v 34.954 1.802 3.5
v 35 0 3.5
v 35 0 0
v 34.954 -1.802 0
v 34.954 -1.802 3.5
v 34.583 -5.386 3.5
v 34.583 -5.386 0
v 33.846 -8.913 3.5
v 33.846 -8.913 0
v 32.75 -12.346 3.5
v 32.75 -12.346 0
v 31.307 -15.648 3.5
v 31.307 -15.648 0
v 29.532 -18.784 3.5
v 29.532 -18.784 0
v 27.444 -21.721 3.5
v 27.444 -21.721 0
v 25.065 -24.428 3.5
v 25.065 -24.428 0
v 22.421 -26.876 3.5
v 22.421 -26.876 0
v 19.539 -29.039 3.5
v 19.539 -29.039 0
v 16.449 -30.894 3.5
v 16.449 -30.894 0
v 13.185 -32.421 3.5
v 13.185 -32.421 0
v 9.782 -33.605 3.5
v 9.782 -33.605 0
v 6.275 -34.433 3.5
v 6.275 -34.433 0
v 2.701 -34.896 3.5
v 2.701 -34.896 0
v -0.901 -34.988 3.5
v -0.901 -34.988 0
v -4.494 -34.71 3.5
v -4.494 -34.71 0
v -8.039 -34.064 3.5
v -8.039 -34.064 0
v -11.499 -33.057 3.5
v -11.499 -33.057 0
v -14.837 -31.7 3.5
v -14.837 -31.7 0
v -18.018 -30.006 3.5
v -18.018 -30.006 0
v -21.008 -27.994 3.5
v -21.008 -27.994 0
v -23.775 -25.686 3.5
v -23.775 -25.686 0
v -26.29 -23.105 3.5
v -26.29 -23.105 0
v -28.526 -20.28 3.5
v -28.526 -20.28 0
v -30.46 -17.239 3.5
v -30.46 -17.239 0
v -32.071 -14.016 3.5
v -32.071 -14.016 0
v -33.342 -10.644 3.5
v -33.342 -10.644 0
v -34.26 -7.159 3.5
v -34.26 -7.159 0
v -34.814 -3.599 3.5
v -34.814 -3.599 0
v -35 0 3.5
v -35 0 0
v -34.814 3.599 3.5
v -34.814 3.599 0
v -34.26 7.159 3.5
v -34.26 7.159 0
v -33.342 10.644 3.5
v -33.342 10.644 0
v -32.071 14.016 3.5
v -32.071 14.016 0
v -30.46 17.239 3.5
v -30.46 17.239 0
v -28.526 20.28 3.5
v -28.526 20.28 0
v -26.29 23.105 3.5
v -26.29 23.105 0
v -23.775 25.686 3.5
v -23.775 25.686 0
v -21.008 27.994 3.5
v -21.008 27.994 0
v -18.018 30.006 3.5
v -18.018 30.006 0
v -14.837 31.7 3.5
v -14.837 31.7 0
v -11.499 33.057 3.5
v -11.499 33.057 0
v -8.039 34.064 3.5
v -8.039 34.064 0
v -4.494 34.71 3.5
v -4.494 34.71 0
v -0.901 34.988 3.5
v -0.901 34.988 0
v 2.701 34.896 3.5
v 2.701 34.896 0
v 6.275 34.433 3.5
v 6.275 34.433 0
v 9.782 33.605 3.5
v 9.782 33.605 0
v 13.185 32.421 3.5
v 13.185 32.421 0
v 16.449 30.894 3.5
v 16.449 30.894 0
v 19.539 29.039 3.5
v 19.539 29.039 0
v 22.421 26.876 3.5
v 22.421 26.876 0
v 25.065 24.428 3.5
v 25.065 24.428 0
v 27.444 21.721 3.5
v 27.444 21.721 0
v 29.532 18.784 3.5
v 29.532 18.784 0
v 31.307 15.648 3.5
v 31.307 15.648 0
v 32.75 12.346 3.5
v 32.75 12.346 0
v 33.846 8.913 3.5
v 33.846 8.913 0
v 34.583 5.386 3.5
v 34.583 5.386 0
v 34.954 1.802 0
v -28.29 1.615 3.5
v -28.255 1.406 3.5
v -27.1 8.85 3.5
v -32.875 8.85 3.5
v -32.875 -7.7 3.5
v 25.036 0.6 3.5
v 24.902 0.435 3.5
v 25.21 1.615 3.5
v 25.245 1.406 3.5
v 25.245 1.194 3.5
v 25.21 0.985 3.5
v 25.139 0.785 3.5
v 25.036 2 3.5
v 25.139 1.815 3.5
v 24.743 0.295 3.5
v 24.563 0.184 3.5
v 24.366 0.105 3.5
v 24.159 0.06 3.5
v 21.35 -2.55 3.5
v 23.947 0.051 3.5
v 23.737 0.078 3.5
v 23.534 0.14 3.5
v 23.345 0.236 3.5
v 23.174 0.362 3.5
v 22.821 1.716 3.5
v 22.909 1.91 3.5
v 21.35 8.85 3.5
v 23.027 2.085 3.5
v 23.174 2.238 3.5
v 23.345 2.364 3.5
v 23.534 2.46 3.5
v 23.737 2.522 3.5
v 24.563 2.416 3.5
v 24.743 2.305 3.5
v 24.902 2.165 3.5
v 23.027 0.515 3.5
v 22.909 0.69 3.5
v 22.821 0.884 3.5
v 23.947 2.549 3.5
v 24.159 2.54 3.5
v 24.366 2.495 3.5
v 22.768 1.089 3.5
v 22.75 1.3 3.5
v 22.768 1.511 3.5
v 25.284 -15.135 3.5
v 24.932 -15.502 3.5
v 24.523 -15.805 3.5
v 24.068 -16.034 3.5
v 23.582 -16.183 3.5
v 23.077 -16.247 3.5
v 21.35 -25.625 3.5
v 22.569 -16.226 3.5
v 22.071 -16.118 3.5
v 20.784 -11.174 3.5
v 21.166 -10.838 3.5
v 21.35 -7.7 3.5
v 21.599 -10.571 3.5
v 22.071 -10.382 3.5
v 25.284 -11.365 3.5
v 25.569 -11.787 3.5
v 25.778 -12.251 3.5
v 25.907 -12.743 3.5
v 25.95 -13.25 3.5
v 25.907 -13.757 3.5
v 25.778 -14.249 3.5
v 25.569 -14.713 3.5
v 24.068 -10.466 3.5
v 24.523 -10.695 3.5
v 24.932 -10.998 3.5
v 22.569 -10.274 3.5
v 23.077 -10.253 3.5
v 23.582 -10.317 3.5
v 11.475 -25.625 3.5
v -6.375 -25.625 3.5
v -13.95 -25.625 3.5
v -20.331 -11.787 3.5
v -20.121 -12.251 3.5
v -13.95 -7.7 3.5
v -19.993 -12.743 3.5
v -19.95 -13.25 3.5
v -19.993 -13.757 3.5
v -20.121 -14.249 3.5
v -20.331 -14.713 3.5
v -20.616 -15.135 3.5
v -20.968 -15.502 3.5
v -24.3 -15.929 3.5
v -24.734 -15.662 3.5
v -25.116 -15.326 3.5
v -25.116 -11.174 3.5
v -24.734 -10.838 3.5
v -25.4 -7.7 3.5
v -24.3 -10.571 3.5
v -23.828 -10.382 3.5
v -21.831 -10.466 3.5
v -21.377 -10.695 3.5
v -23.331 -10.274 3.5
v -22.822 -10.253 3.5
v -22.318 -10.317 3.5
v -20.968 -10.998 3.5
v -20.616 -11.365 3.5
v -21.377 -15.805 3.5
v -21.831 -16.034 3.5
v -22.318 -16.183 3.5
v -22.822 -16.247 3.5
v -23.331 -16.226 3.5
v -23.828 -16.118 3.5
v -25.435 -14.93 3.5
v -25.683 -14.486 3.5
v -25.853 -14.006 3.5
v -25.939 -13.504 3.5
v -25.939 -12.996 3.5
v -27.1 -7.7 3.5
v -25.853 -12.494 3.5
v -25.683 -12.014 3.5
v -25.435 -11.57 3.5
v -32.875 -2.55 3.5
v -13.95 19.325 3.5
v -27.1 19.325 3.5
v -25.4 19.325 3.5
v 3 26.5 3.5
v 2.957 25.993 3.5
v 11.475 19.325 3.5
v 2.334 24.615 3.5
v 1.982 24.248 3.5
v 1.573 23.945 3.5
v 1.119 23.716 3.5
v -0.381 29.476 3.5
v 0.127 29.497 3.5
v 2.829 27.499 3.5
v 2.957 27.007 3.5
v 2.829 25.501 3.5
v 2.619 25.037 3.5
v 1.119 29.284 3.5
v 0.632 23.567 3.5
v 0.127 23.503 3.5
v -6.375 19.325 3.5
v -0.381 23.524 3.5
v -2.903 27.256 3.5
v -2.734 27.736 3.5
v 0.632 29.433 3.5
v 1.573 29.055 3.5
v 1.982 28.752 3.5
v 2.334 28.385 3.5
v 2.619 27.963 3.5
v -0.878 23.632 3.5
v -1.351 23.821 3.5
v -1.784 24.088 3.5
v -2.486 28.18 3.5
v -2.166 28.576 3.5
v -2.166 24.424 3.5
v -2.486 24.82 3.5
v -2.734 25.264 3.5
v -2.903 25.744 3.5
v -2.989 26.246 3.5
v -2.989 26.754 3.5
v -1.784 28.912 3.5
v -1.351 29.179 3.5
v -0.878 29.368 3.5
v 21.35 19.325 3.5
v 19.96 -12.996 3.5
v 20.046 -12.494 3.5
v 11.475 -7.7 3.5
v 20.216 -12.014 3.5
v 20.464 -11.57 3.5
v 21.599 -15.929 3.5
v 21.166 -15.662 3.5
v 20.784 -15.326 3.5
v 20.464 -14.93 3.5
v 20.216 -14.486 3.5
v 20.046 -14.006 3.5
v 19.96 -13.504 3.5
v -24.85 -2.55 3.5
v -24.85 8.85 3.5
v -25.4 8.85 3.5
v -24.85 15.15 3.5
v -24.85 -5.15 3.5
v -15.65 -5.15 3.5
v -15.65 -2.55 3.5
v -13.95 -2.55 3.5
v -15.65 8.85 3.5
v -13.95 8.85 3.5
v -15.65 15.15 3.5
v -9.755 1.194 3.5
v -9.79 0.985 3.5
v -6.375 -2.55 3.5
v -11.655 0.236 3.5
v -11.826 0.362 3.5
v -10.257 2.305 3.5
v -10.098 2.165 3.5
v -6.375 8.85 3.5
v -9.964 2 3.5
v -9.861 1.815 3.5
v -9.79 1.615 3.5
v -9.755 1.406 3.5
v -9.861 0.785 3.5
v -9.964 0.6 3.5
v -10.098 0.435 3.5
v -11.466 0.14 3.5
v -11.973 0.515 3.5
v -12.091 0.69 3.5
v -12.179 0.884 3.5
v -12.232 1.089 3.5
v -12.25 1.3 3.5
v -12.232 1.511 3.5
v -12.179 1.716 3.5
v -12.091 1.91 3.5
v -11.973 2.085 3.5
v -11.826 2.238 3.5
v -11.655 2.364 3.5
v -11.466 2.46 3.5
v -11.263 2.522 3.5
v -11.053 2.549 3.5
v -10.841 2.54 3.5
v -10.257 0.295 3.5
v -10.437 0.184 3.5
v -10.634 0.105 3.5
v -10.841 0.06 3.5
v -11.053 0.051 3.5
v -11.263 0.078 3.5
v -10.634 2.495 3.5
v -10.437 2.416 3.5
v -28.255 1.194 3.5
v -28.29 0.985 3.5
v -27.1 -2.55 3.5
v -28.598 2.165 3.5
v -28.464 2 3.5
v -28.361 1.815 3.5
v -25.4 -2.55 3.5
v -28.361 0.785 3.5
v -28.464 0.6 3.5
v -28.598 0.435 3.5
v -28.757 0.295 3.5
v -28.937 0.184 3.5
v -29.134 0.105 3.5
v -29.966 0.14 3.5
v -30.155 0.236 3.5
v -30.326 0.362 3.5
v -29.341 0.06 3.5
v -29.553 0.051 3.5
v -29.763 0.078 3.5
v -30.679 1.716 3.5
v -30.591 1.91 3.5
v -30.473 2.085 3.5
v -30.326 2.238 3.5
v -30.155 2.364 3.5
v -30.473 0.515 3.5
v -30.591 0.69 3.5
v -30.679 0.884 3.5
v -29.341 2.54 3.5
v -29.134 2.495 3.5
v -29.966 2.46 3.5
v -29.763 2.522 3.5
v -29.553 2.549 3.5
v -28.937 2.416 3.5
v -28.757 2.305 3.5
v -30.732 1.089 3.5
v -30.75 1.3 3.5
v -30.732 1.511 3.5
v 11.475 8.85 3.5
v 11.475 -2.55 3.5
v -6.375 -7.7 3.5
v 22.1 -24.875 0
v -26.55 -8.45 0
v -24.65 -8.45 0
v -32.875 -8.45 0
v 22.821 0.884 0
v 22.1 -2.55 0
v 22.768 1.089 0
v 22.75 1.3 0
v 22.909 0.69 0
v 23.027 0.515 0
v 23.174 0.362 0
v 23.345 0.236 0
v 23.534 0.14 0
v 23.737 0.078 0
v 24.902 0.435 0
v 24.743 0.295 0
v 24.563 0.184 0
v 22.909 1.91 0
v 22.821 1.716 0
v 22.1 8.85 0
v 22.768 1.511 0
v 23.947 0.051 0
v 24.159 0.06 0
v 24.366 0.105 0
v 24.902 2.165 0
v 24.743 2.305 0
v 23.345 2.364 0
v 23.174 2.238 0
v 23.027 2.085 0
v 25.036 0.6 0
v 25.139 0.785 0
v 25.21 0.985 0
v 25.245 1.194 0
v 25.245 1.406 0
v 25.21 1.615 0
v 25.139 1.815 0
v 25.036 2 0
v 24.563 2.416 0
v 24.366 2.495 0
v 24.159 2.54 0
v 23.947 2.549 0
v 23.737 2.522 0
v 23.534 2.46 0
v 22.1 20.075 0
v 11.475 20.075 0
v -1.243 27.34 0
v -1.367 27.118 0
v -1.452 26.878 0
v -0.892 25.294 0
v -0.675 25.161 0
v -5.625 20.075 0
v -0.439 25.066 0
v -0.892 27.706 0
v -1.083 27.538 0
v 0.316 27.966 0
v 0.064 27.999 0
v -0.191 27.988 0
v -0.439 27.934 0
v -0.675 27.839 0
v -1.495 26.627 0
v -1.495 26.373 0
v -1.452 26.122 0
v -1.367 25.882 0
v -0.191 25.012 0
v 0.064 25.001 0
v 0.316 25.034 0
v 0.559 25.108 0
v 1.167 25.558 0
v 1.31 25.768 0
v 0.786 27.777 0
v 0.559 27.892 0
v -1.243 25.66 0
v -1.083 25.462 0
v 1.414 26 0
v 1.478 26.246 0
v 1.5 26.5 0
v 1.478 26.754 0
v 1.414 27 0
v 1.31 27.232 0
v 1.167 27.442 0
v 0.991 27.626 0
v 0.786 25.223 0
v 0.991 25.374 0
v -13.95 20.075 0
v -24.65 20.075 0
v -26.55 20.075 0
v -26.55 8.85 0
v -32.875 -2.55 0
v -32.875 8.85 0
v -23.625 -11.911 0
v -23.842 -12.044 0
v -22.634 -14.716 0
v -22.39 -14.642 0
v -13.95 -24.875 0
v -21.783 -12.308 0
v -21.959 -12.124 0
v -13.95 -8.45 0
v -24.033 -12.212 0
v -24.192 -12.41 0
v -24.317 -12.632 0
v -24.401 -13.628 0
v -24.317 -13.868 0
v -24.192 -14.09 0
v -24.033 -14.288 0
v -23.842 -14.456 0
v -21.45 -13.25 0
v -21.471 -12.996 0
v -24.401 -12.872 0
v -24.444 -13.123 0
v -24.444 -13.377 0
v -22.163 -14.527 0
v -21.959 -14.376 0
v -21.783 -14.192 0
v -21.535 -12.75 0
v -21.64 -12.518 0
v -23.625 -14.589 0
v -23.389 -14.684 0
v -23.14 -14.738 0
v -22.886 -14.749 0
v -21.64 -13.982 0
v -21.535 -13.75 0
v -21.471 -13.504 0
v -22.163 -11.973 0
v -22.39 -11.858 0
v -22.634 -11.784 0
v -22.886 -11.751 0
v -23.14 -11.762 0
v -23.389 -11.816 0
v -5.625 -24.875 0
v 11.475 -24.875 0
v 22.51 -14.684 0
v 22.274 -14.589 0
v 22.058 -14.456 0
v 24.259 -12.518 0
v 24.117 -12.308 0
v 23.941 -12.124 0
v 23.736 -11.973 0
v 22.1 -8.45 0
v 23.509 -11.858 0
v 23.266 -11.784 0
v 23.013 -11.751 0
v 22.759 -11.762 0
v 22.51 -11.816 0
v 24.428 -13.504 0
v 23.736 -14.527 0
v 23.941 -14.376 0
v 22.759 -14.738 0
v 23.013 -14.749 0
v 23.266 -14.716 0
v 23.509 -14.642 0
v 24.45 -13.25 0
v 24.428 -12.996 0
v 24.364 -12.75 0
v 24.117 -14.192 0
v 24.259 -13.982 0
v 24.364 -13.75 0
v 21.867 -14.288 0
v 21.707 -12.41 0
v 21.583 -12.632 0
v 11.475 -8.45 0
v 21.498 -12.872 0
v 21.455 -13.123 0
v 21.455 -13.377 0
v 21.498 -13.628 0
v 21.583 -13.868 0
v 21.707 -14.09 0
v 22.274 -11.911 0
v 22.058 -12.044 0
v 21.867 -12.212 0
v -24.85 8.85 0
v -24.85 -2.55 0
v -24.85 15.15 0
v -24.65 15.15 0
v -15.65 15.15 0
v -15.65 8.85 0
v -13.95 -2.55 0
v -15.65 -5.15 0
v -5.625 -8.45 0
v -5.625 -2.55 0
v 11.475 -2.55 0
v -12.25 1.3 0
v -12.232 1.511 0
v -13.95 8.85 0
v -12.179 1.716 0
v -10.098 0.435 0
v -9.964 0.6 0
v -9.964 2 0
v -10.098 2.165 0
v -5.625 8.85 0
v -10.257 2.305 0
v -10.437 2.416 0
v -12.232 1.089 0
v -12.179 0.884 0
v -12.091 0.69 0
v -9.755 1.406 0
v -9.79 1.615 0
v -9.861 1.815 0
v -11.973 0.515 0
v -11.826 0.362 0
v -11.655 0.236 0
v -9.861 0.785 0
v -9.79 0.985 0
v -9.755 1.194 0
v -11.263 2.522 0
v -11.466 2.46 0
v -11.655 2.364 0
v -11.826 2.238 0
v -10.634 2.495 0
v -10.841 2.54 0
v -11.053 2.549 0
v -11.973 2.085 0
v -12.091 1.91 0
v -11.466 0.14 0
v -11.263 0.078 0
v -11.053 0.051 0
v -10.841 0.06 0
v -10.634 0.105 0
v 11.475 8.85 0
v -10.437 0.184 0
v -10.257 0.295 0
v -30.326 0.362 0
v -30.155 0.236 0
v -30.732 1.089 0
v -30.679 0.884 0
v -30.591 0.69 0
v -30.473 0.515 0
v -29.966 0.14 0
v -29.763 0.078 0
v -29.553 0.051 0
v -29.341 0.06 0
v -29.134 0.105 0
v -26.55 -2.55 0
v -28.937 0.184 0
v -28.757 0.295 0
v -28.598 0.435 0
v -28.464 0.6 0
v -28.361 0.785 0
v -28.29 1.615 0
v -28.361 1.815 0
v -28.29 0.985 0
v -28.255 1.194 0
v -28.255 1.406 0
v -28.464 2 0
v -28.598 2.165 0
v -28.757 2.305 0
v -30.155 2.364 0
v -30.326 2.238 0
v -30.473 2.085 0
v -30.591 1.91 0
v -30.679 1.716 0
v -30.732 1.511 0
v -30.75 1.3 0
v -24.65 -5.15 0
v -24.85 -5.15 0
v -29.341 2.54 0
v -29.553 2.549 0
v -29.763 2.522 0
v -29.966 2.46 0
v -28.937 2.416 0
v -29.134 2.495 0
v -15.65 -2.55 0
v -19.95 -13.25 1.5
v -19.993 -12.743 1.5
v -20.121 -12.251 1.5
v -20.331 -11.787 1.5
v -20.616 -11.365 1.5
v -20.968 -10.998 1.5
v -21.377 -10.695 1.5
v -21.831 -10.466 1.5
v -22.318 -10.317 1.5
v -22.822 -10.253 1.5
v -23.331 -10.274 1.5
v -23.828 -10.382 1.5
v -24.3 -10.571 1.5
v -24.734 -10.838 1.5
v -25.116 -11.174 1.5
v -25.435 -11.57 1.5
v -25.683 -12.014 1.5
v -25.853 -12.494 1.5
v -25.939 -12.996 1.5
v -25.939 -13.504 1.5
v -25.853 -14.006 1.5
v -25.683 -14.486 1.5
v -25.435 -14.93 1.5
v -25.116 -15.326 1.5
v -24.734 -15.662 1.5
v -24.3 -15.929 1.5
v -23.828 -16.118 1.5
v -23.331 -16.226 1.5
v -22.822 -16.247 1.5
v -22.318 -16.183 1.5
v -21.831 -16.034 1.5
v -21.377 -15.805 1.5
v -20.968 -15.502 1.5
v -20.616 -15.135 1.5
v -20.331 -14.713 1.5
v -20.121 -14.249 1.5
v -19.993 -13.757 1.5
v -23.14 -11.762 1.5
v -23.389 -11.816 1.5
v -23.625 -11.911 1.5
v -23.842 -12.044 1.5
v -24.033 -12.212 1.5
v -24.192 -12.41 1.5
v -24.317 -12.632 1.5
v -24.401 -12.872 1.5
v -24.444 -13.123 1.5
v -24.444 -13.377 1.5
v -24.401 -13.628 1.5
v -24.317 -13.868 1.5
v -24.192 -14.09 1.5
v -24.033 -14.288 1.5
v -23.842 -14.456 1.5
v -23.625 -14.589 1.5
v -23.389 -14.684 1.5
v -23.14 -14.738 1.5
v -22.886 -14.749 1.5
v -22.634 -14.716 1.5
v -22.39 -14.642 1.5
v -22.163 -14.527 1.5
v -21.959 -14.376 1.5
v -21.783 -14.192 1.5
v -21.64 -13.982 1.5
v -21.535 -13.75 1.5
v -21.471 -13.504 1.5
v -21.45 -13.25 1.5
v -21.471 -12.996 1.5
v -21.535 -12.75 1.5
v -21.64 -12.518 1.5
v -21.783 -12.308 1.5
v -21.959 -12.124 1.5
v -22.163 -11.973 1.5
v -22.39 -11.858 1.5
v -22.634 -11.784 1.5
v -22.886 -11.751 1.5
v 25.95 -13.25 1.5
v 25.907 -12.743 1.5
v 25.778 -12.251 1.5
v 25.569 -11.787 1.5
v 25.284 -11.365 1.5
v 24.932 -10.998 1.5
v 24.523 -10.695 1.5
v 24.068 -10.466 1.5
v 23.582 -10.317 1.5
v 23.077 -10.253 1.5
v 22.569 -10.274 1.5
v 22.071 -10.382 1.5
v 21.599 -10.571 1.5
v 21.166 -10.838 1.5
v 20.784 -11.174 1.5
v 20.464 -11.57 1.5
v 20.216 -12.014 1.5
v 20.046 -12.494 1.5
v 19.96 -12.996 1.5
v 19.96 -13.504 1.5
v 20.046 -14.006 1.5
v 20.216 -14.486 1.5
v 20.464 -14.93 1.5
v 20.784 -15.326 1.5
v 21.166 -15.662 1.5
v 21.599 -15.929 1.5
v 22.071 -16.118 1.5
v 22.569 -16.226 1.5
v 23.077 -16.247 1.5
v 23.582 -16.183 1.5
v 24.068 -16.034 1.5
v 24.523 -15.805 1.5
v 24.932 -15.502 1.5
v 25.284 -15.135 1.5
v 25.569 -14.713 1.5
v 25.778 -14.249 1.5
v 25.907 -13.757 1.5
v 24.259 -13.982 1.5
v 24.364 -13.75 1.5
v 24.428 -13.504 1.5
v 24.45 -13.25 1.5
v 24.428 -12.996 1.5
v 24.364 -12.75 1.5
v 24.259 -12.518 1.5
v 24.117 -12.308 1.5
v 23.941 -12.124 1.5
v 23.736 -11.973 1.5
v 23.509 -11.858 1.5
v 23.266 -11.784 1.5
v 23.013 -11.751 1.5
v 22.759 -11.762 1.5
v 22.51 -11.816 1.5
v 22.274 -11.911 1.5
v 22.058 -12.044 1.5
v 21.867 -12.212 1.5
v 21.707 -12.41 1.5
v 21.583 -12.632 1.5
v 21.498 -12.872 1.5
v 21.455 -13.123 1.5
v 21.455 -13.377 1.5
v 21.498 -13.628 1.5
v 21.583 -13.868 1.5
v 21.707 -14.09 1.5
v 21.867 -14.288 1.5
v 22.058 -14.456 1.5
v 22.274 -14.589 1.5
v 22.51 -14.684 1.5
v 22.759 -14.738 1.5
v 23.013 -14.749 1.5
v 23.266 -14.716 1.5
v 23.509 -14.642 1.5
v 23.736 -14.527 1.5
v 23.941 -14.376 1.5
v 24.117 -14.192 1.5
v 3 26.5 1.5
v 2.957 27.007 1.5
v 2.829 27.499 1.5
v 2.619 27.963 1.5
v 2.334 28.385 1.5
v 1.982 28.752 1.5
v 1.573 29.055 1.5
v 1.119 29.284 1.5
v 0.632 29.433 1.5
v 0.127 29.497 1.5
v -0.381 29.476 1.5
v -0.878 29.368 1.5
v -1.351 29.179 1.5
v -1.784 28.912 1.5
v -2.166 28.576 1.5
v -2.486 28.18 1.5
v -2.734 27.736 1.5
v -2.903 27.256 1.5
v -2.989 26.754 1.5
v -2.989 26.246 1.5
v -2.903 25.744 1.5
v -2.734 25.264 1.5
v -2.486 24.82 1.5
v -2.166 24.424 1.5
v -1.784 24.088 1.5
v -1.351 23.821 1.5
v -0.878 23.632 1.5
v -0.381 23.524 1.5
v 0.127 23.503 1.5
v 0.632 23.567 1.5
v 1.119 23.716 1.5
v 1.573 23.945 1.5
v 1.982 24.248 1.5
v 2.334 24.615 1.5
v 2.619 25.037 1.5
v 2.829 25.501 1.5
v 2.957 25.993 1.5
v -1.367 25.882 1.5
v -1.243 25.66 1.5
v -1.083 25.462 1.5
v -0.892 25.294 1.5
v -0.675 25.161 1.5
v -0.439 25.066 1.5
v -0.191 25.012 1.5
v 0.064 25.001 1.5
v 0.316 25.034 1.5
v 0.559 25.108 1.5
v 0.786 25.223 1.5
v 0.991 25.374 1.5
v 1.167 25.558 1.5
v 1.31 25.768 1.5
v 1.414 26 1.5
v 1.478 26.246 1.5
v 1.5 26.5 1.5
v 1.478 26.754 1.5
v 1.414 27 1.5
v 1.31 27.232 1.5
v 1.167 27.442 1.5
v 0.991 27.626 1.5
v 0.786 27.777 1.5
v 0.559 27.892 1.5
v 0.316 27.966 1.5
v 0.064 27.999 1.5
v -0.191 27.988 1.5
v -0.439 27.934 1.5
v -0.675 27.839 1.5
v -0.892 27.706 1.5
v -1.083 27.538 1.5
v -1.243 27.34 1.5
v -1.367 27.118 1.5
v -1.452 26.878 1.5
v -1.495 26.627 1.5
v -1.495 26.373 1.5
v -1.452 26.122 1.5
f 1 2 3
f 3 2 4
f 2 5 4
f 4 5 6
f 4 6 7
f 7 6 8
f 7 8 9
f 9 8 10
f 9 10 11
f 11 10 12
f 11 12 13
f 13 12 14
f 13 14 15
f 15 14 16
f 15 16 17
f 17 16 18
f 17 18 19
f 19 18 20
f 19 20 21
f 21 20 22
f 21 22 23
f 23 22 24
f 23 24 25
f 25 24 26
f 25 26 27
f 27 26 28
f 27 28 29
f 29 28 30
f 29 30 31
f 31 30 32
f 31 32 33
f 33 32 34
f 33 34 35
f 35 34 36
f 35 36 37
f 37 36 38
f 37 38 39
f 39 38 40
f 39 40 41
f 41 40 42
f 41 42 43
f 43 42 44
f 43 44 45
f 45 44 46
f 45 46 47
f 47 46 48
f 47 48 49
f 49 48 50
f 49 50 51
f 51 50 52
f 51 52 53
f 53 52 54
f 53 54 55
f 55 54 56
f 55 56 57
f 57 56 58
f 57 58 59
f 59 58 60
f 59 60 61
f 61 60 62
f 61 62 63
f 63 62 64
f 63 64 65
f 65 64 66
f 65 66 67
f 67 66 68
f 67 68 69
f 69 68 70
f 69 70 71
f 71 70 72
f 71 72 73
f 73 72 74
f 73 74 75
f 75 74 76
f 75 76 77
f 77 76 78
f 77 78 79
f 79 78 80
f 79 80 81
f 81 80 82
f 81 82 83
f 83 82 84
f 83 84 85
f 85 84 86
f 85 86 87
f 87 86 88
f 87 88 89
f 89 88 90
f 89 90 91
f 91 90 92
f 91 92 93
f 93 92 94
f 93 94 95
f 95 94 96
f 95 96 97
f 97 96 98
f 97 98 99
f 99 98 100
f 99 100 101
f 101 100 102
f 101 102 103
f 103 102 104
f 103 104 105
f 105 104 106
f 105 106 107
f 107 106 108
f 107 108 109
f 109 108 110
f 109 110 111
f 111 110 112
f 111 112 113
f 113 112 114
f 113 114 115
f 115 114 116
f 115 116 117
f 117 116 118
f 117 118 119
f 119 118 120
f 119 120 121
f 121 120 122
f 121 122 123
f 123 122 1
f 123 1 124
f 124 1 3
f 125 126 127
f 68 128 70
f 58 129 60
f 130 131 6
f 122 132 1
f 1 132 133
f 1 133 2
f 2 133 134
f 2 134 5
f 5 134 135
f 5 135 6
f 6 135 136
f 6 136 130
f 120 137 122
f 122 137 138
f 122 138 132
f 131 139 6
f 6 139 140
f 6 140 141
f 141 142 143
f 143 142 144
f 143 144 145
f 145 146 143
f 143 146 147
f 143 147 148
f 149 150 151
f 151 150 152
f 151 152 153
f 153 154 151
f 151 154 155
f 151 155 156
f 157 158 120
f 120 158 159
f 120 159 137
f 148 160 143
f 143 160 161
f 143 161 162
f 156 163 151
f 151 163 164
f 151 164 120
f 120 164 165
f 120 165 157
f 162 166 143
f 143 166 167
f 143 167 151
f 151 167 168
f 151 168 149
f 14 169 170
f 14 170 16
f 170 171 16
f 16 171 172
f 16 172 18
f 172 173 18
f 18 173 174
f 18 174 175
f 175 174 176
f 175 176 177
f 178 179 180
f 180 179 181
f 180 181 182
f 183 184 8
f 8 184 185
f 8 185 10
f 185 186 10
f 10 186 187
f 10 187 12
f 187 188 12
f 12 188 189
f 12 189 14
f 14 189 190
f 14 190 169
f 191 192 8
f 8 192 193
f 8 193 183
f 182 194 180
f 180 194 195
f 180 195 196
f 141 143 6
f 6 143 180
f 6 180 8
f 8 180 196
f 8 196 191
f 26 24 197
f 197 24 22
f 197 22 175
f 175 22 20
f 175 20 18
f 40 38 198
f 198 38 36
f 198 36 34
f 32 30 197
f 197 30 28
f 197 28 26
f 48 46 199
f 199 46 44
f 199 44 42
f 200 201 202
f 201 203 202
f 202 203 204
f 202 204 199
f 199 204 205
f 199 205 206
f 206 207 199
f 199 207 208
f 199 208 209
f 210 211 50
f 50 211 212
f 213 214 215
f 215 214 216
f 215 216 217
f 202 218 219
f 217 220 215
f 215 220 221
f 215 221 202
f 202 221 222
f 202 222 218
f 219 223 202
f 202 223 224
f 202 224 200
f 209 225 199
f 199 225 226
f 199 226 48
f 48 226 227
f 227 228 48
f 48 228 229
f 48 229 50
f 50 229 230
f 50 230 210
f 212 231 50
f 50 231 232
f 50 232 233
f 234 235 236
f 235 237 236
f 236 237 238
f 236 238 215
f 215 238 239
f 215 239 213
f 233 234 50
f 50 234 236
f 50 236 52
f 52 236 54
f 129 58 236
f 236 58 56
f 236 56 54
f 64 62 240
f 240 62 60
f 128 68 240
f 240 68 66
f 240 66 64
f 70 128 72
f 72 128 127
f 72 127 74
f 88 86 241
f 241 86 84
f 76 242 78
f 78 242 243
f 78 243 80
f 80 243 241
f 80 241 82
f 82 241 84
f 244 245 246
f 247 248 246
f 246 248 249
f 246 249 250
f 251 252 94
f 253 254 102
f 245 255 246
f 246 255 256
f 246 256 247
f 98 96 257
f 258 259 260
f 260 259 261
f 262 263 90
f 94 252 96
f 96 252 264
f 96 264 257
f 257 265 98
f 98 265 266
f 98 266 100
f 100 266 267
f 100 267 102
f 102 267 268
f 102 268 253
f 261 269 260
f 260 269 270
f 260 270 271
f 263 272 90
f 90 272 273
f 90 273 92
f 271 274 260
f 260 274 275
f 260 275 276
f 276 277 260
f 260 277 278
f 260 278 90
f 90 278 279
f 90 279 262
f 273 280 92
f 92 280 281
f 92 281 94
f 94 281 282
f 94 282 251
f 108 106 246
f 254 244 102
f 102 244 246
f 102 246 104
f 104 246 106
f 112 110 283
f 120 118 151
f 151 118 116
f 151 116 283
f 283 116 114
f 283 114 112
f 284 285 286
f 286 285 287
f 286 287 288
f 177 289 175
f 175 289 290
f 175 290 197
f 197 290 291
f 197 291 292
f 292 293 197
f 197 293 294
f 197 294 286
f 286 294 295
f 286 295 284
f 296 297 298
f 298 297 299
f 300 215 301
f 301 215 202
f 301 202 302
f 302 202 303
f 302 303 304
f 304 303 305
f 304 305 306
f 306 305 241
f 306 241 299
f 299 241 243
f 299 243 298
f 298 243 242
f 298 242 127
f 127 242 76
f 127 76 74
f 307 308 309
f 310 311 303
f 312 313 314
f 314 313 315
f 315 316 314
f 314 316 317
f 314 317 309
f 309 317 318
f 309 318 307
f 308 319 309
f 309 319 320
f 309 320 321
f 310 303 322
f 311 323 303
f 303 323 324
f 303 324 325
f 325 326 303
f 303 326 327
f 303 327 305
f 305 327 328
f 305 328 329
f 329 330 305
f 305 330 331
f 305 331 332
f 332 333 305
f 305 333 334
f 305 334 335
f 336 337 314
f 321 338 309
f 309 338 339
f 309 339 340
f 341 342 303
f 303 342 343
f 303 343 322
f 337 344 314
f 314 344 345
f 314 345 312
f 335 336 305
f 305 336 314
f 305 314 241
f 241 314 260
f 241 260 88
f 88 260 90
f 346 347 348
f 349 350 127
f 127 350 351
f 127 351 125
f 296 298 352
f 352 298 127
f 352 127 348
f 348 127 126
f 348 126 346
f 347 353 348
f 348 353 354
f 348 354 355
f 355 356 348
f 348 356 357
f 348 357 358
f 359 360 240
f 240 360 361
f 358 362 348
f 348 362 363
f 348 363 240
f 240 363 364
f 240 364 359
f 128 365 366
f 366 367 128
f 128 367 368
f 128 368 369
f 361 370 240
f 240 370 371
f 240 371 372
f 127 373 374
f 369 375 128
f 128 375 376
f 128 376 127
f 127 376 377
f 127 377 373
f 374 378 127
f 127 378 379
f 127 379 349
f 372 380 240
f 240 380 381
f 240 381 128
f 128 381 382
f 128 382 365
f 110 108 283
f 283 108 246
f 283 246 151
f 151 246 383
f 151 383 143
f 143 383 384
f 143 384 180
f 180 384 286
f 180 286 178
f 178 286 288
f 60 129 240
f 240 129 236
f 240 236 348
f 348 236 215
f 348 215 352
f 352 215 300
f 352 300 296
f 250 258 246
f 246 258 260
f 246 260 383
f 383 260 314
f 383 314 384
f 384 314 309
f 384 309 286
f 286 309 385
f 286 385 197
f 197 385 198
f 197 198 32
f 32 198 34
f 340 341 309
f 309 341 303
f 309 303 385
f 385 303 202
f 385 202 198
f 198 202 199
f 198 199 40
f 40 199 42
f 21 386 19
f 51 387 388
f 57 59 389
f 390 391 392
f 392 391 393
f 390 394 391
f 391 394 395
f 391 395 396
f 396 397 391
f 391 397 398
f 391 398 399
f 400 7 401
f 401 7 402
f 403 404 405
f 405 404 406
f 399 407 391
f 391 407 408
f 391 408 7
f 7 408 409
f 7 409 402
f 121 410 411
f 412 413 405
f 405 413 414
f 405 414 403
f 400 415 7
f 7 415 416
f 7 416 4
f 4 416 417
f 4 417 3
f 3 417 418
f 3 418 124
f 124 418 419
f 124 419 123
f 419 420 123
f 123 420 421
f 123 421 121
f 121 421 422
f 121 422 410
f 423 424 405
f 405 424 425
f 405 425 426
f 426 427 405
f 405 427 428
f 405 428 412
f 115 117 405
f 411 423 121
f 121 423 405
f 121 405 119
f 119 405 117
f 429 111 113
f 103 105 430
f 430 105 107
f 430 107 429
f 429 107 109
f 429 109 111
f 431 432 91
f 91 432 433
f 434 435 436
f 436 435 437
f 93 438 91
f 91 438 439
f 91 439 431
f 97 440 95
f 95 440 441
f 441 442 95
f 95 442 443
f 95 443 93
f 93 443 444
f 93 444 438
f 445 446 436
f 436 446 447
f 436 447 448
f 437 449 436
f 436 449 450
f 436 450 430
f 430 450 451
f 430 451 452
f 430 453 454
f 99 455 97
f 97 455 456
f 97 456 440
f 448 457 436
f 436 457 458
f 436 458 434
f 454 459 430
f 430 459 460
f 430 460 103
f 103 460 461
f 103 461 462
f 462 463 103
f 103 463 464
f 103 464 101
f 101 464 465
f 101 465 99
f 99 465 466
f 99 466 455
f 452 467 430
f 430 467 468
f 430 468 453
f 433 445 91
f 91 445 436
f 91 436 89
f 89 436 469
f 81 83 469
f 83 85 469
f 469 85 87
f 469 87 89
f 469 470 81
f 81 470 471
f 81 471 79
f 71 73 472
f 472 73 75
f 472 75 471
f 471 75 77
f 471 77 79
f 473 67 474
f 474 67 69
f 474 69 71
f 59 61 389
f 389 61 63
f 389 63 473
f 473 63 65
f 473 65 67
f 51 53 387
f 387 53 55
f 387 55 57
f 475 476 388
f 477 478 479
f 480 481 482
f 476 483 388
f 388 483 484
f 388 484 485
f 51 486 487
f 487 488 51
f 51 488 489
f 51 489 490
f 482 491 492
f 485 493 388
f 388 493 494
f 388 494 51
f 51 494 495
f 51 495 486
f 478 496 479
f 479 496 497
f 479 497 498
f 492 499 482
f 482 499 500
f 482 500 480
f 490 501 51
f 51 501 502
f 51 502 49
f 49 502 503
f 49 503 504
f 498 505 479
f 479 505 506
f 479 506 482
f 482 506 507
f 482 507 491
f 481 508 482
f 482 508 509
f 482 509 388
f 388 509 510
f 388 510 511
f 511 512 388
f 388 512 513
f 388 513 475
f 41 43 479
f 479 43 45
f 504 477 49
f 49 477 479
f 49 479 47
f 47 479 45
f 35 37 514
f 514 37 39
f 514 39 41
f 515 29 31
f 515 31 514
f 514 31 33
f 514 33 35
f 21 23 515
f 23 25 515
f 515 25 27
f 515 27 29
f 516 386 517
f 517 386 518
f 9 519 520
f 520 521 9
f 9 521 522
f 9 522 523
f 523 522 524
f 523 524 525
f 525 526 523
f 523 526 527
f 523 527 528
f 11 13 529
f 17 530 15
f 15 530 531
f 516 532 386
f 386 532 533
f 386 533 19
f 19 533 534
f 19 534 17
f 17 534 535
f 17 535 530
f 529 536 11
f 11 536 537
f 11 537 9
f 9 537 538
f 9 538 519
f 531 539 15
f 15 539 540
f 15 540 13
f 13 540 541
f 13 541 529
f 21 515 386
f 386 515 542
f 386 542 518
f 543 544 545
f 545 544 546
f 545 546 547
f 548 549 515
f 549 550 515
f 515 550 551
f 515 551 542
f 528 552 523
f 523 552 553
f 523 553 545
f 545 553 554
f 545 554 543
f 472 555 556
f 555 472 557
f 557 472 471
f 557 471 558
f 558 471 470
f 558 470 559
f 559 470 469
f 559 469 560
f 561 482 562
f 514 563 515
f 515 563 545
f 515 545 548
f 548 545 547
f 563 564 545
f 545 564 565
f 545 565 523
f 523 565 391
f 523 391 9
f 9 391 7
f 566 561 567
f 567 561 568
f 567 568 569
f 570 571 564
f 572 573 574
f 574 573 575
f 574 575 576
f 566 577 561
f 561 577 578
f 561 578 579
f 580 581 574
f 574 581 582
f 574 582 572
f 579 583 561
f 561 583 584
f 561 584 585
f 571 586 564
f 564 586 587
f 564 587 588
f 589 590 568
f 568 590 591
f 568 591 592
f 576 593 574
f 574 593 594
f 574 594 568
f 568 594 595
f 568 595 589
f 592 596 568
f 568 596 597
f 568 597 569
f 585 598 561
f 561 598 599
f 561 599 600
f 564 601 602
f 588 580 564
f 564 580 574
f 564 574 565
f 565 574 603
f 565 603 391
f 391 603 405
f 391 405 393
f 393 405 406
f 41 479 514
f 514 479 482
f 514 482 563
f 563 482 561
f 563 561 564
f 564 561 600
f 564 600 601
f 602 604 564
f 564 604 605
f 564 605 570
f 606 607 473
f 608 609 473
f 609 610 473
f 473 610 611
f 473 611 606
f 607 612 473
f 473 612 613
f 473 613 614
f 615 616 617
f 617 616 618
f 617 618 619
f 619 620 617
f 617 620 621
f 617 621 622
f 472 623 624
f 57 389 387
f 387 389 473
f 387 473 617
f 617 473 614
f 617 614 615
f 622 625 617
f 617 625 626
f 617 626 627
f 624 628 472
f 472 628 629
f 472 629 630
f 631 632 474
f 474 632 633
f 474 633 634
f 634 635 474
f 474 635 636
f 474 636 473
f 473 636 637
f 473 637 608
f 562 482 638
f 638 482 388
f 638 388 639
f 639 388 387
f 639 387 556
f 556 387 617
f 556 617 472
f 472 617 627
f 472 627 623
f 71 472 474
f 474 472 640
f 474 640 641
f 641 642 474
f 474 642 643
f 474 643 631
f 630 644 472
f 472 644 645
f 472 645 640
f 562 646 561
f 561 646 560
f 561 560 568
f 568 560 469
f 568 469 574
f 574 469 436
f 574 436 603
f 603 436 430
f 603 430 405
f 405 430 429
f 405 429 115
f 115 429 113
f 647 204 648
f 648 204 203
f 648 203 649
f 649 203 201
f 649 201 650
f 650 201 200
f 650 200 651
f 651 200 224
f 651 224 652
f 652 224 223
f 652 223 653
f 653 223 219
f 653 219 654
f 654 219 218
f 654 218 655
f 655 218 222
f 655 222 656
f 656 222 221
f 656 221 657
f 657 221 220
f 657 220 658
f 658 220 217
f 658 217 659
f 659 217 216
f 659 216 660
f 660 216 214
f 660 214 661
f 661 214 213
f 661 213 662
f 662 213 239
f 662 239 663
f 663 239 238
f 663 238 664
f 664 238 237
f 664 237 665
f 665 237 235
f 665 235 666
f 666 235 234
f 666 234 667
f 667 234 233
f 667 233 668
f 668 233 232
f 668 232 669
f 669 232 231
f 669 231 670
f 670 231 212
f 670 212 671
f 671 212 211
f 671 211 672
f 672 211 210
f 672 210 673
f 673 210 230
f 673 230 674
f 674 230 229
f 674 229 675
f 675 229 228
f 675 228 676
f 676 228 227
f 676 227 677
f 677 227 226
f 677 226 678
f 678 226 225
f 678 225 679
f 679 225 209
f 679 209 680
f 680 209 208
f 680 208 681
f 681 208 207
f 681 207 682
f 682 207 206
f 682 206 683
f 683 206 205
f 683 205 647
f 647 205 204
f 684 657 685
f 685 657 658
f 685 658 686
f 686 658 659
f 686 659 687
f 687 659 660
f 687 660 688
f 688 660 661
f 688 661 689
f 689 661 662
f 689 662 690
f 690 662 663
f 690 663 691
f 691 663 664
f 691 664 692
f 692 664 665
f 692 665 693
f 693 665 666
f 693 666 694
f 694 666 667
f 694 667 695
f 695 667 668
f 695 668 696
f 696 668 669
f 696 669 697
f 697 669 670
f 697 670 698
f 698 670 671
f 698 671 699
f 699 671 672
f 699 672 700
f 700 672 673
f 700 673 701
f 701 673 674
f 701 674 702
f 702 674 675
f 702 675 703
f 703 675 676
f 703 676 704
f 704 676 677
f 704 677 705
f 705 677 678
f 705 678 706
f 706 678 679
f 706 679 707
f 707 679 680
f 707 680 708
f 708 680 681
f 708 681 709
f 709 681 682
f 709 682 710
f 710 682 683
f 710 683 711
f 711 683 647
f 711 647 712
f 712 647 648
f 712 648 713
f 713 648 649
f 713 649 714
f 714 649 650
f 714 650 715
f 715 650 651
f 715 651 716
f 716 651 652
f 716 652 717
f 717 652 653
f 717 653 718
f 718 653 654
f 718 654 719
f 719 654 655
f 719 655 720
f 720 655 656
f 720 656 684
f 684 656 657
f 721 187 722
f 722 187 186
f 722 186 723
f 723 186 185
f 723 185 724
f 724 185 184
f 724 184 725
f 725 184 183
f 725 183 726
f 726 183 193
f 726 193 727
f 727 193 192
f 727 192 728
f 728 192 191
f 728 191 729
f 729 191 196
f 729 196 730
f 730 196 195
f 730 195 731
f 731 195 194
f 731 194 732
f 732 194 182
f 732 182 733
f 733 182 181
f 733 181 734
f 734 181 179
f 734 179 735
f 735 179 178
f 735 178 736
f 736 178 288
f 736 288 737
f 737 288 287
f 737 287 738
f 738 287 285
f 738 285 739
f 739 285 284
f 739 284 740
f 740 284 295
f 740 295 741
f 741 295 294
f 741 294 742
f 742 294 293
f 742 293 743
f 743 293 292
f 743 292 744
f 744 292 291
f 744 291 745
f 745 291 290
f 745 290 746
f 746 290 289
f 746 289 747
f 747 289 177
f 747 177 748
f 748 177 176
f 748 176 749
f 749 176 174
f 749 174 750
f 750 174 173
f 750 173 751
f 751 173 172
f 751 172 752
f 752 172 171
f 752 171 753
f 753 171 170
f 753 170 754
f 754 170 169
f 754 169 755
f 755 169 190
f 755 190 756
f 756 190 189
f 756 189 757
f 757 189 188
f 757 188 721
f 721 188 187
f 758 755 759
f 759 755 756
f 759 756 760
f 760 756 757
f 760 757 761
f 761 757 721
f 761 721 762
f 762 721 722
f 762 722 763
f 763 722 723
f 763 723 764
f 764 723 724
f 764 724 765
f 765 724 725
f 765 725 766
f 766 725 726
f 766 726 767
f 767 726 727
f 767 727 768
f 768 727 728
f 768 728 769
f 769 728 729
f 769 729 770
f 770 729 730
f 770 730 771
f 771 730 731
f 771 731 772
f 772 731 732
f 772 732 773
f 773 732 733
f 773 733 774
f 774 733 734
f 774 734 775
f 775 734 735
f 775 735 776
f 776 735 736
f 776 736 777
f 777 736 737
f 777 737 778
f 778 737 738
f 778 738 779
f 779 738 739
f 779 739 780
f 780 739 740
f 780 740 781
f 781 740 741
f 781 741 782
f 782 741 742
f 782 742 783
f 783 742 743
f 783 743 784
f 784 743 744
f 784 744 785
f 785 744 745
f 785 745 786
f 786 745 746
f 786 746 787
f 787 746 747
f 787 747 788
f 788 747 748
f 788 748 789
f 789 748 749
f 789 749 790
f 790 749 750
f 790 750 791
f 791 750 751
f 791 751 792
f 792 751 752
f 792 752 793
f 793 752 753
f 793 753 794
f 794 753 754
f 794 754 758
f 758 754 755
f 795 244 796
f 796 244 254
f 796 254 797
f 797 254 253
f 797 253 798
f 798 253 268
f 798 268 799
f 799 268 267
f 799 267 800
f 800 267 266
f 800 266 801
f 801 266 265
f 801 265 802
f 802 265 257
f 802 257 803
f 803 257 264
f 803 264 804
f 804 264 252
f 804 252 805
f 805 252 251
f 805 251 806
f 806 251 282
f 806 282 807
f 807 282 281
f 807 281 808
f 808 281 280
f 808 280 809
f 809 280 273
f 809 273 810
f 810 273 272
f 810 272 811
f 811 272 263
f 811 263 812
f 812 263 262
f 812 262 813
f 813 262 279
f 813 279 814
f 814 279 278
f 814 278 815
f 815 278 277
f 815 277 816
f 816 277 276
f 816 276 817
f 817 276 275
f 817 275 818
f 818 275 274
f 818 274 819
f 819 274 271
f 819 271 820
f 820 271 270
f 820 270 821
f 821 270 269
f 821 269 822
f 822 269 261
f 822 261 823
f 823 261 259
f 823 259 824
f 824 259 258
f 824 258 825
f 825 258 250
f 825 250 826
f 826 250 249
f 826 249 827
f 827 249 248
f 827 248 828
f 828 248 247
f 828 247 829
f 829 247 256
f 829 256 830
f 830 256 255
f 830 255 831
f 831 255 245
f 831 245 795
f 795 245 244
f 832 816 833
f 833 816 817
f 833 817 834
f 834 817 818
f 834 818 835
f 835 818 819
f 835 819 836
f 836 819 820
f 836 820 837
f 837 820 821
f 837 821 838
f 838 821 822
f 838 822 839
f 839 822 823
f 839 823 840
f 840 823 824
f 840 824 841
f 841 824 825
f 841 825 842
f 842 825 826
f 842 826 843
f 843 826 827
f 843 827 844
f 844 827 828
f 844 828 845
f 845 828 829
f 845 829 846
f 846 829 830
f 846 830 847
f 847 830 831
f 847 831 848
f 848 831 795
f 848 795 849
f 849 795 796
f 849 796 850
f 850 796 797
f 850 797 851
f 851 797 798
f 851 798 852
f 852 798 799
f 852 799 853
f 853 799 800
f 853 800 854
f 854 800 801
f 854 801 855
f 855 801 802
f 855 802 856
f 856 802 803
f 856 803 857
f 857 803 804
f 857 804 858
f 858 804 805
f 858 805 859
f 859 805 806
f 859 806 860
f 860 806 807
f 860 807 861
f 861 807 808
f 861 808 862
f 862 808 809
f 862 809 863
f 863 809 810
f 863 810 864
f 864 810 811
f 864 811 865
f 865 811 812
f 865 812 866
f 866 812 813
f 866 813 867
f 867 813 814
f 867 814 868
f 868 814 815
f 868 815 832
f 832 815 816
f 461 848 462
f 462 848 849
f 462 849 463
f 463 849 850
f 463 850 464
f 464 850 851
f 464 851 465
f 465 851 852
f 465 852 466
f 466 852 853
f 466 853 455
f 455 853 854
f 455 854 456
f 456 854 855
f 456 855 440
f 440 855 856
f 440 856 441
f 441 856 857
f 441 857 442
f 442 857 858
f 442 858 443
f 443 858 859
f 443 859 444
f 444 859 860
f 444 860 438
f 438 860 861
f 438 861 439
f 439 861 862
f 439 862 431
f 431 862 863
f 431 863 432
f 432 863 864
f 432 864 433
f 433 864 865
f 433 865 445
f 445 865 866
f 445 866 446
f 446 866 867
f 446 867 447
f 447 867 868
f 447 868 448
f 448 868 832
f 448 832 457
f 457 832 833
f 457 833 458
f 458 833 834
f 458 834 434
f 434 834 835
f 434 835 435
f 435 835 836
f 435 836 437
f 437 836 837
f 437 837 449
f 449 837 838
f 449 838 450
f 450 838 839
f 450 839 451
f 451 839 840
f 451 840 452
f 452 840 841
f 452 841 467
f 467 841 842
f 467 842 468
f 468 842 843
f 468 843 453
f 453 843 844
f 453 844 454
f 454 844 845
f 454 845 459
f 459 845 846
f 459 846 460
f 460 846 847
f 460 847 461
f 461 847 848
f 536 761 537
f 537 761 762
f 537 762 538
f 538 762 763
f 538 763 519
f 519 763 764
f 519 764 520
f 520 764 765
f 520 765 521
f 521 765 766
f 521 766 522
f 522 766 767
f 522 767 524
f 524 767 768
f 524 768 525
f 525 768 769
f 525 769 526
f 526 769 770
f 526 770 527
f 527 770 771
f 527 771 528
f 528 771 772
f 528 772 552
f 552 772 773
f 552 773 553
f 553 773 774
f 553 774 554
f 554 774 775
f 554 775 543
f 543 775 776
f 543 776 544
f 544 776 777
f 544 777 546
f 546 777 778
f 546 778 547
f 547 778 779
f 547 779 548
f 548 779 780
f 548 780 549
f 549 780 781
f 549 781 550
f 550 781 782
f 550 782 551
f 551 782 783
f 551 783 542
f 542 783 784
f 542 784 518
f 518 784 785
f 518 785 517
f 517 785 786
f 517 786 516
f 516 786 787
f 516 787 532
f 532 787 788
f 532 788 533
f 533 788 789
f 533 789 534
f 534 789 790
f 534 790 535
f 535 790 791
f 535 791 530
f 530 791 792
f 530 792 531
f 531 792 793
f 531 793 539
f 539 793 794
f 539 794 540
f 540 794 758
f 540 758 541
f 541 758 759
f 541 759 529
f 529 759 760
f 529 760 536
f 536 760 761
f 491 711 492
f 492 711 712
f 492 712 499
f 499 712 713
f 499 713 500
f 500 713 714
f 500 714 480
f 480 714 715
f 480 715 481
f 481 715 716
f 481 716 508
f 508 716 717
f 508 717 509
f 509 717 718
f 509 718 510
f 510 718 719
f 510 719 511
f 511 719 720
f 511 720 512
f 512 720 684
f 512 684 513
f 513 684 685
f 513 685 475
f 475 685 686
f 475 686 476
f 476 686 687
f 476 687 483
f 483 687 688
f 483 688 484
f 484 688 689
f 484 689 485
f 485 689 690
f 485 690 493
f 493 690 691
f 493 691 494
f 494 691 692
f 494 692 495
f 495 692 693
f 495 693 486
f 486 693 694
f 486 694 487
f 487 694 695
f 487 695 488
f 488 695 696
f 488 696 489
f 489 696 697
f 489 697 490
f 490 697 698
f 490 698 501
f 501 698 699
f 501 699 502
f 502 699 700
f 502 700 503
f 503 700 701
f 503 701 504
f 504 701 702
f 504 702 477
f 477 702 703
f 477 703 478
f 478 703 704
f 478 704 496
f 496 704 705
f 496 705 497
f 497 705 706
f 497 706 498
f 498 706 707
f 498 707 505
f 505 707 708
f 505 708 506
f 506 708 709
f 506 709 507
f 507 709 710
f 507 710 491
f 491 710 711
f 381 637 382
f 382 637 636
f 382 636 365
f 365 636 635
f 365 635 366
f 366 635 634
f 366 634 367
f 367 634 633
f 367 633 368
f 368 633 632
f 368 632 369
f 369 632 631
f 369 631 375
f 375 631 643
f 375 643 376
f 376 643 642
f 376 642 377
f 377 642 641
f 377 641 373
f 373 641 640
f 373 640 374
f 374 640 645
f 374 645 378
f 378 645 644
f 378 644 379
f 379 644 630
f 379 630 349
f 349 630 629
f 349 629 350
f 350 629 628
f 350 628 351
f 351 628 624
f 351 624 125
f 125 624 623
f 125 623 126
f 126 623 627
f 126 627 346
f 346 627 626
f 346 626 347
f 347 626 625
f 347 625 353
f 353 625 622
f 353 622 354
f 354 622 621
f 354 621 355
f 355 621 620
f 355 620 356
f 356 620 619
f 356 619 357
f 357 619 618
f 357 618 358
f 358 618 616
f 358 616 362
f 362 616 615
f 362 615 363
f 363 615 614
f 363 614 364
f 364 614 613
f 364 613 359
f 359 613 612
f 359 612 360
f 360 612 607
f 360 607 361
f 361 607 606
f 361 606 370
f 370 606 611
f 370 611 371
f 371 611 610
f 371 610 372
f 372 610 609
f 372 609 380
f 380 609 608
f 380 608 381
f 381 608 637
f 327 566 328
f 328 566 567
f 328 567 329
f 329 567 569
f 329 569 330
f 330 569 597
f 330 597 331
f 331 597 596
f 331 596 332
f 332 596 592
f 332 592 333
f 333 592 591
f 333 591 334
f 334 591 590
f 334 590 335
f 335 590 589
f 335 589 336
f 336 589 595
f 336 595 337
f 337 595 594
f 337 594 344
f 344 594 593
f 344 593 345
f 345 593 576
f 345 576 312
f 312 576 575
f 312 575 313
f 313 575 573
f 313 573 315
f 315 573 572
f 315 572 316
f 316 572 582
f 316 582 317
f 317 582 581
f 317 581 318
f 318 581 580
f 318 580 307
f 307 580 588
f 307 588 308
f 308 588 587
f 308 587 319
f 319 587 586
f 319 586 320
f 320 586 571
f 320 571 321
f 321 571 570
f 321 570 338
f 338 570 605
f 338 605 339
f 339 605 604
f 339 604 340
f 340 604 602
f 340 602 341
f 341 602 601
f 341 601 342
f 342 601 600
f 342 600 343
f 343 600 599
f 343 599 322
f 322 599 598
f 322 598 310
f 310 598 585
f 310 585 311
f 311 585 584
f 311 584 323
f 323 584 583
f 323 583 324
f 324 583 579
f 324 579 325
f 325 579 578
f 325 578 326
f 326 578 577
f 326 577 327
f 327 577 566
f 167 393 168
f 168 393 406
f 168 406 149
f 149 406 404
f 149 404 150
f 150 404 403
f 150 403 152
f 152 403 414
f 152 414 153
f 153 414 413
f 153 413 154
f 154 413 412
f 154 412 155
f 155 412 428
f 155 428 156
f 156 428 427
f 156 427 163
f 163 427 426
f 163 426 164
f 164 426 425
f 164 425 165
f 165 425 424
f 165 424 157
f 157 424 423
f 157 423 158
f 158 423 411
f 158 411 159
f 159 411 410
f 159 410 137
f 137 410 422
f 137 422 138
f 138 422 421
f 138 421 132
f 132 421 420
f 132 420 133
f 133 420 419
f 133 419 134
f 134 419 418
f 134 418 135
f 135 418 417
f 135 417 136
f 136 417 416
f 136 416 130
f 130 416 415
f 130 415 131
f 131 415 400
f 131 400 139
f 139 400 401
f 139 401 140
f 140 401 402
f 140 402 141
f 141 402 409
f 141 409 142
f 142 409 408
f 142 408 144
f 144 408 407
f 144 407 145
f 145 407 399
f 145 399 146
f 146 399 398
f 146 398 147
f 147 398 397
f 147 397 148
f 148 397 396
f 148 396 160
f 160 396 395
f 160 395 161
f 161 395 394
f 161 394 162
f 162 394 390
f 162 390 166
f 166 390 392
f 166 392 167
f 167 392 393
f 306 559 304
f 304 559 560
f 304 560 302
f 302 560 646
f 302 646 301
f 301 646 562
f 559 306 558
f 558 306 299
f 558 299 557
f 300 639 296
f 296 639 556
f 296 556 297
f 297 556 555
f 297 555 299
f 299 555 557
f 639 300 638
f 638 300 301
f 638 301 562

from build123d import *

# Parameters (mm, degrees)
CROQUIS2_R              = 35
SALIENTE_EXTRUIR1_DEPTH = 3.5
CROQUIS6_R              = 3
CORTAR_EXTRUIR2_DEPTH   = 2
CROQUIS7_R              = 1.5
CORTAR_EXTRUIR3_DEPTH   = 50.621064076
CROQUIS9_R              = 1.25
CORTAR_EXTRUIR5_DEPTH   = 50.621064076
CROQUIS10_W             = 9.2
CROQUIS10_H             = 20.3
CORTAR_EXTRUIR6_DEPTH   = 10


with BuildPart() as part:
    # Croquis2 → Saliente-Extruir1 (new body)
    with BuildSketch(Plane.XY):
        Circle(CROQUIS2_R)
    extrude(amount=SALIENTE_EXTRUIR1_DEPTH)

    # Croquis6 → Cortar-Extruir2 (cut)
    with BuildSketch(Plane.XY.offset(3.5)):
        with Locations((0, 26.5)):
            Circle(CROQUIS6_R)
        with Locations((22.9496732, -13.25)):
            Circle(CROQUIS6_R)
        with Locations((-22.9496732, -13.25)):
            Circle(CROQUIS6_R)
    extrude(amount=-CORTAR_EXTRUIR2_DEPTH, mode=Mode.SUBTRACT)

    # Croquis7 → Cortar-Extruir3 (cut, through all)
    with BuildSketch(Plane.XY.offset(3.5)):
        with Locations((0, 26.5)):
            Circle(CROQUIS7_R)
        with Locations((22.9496732, -13.25)):
            Circle(CROQUIS7_R)
        with Locations((-22.9496732, -13.25)):
            Circle(CROQUIS7_R)
    extrude(amount=-CORTAR_EXTRUIR3_DEPTH, mode=Mode.SUBTRACT)

    # Croquis9 → Cortar-Extruir5 (cut, through all)
    with BuildSketch(Plane(origin=(0, 0, 0), x_dir=(-1, 0, 0), z_dir=(0, 0, -1))):
        with Locations((-24, 1.3)):
            Circle(CROQUIS9_R)
        with Locations((11, 1.3)):
            Circle(CROQUIS9_R)
        with Locations((29.5, 1.3)):
            Circle(CROQUIS9_R)
    extrude(amount=-CORTAR_EXTRUIR5_DEPTH, mode=Mode.SUBTRACT)

    # Croquis10 → Cortar-Extruir6 (cut)
    with BuildSketch(Plane(origin=(0, 0, 0), x_dir=(-1, 0, 0), z_dir=(0, 0, -1))):
        with Locations((20.25, 5)):
            Rectangle(CROQUIS10_W, CROQUIS10_H)
    extrude(amount=-CORTAR_EXTRUIR6_DEPTH, mode=Mode.SUBTRACT)


solid = part.part
